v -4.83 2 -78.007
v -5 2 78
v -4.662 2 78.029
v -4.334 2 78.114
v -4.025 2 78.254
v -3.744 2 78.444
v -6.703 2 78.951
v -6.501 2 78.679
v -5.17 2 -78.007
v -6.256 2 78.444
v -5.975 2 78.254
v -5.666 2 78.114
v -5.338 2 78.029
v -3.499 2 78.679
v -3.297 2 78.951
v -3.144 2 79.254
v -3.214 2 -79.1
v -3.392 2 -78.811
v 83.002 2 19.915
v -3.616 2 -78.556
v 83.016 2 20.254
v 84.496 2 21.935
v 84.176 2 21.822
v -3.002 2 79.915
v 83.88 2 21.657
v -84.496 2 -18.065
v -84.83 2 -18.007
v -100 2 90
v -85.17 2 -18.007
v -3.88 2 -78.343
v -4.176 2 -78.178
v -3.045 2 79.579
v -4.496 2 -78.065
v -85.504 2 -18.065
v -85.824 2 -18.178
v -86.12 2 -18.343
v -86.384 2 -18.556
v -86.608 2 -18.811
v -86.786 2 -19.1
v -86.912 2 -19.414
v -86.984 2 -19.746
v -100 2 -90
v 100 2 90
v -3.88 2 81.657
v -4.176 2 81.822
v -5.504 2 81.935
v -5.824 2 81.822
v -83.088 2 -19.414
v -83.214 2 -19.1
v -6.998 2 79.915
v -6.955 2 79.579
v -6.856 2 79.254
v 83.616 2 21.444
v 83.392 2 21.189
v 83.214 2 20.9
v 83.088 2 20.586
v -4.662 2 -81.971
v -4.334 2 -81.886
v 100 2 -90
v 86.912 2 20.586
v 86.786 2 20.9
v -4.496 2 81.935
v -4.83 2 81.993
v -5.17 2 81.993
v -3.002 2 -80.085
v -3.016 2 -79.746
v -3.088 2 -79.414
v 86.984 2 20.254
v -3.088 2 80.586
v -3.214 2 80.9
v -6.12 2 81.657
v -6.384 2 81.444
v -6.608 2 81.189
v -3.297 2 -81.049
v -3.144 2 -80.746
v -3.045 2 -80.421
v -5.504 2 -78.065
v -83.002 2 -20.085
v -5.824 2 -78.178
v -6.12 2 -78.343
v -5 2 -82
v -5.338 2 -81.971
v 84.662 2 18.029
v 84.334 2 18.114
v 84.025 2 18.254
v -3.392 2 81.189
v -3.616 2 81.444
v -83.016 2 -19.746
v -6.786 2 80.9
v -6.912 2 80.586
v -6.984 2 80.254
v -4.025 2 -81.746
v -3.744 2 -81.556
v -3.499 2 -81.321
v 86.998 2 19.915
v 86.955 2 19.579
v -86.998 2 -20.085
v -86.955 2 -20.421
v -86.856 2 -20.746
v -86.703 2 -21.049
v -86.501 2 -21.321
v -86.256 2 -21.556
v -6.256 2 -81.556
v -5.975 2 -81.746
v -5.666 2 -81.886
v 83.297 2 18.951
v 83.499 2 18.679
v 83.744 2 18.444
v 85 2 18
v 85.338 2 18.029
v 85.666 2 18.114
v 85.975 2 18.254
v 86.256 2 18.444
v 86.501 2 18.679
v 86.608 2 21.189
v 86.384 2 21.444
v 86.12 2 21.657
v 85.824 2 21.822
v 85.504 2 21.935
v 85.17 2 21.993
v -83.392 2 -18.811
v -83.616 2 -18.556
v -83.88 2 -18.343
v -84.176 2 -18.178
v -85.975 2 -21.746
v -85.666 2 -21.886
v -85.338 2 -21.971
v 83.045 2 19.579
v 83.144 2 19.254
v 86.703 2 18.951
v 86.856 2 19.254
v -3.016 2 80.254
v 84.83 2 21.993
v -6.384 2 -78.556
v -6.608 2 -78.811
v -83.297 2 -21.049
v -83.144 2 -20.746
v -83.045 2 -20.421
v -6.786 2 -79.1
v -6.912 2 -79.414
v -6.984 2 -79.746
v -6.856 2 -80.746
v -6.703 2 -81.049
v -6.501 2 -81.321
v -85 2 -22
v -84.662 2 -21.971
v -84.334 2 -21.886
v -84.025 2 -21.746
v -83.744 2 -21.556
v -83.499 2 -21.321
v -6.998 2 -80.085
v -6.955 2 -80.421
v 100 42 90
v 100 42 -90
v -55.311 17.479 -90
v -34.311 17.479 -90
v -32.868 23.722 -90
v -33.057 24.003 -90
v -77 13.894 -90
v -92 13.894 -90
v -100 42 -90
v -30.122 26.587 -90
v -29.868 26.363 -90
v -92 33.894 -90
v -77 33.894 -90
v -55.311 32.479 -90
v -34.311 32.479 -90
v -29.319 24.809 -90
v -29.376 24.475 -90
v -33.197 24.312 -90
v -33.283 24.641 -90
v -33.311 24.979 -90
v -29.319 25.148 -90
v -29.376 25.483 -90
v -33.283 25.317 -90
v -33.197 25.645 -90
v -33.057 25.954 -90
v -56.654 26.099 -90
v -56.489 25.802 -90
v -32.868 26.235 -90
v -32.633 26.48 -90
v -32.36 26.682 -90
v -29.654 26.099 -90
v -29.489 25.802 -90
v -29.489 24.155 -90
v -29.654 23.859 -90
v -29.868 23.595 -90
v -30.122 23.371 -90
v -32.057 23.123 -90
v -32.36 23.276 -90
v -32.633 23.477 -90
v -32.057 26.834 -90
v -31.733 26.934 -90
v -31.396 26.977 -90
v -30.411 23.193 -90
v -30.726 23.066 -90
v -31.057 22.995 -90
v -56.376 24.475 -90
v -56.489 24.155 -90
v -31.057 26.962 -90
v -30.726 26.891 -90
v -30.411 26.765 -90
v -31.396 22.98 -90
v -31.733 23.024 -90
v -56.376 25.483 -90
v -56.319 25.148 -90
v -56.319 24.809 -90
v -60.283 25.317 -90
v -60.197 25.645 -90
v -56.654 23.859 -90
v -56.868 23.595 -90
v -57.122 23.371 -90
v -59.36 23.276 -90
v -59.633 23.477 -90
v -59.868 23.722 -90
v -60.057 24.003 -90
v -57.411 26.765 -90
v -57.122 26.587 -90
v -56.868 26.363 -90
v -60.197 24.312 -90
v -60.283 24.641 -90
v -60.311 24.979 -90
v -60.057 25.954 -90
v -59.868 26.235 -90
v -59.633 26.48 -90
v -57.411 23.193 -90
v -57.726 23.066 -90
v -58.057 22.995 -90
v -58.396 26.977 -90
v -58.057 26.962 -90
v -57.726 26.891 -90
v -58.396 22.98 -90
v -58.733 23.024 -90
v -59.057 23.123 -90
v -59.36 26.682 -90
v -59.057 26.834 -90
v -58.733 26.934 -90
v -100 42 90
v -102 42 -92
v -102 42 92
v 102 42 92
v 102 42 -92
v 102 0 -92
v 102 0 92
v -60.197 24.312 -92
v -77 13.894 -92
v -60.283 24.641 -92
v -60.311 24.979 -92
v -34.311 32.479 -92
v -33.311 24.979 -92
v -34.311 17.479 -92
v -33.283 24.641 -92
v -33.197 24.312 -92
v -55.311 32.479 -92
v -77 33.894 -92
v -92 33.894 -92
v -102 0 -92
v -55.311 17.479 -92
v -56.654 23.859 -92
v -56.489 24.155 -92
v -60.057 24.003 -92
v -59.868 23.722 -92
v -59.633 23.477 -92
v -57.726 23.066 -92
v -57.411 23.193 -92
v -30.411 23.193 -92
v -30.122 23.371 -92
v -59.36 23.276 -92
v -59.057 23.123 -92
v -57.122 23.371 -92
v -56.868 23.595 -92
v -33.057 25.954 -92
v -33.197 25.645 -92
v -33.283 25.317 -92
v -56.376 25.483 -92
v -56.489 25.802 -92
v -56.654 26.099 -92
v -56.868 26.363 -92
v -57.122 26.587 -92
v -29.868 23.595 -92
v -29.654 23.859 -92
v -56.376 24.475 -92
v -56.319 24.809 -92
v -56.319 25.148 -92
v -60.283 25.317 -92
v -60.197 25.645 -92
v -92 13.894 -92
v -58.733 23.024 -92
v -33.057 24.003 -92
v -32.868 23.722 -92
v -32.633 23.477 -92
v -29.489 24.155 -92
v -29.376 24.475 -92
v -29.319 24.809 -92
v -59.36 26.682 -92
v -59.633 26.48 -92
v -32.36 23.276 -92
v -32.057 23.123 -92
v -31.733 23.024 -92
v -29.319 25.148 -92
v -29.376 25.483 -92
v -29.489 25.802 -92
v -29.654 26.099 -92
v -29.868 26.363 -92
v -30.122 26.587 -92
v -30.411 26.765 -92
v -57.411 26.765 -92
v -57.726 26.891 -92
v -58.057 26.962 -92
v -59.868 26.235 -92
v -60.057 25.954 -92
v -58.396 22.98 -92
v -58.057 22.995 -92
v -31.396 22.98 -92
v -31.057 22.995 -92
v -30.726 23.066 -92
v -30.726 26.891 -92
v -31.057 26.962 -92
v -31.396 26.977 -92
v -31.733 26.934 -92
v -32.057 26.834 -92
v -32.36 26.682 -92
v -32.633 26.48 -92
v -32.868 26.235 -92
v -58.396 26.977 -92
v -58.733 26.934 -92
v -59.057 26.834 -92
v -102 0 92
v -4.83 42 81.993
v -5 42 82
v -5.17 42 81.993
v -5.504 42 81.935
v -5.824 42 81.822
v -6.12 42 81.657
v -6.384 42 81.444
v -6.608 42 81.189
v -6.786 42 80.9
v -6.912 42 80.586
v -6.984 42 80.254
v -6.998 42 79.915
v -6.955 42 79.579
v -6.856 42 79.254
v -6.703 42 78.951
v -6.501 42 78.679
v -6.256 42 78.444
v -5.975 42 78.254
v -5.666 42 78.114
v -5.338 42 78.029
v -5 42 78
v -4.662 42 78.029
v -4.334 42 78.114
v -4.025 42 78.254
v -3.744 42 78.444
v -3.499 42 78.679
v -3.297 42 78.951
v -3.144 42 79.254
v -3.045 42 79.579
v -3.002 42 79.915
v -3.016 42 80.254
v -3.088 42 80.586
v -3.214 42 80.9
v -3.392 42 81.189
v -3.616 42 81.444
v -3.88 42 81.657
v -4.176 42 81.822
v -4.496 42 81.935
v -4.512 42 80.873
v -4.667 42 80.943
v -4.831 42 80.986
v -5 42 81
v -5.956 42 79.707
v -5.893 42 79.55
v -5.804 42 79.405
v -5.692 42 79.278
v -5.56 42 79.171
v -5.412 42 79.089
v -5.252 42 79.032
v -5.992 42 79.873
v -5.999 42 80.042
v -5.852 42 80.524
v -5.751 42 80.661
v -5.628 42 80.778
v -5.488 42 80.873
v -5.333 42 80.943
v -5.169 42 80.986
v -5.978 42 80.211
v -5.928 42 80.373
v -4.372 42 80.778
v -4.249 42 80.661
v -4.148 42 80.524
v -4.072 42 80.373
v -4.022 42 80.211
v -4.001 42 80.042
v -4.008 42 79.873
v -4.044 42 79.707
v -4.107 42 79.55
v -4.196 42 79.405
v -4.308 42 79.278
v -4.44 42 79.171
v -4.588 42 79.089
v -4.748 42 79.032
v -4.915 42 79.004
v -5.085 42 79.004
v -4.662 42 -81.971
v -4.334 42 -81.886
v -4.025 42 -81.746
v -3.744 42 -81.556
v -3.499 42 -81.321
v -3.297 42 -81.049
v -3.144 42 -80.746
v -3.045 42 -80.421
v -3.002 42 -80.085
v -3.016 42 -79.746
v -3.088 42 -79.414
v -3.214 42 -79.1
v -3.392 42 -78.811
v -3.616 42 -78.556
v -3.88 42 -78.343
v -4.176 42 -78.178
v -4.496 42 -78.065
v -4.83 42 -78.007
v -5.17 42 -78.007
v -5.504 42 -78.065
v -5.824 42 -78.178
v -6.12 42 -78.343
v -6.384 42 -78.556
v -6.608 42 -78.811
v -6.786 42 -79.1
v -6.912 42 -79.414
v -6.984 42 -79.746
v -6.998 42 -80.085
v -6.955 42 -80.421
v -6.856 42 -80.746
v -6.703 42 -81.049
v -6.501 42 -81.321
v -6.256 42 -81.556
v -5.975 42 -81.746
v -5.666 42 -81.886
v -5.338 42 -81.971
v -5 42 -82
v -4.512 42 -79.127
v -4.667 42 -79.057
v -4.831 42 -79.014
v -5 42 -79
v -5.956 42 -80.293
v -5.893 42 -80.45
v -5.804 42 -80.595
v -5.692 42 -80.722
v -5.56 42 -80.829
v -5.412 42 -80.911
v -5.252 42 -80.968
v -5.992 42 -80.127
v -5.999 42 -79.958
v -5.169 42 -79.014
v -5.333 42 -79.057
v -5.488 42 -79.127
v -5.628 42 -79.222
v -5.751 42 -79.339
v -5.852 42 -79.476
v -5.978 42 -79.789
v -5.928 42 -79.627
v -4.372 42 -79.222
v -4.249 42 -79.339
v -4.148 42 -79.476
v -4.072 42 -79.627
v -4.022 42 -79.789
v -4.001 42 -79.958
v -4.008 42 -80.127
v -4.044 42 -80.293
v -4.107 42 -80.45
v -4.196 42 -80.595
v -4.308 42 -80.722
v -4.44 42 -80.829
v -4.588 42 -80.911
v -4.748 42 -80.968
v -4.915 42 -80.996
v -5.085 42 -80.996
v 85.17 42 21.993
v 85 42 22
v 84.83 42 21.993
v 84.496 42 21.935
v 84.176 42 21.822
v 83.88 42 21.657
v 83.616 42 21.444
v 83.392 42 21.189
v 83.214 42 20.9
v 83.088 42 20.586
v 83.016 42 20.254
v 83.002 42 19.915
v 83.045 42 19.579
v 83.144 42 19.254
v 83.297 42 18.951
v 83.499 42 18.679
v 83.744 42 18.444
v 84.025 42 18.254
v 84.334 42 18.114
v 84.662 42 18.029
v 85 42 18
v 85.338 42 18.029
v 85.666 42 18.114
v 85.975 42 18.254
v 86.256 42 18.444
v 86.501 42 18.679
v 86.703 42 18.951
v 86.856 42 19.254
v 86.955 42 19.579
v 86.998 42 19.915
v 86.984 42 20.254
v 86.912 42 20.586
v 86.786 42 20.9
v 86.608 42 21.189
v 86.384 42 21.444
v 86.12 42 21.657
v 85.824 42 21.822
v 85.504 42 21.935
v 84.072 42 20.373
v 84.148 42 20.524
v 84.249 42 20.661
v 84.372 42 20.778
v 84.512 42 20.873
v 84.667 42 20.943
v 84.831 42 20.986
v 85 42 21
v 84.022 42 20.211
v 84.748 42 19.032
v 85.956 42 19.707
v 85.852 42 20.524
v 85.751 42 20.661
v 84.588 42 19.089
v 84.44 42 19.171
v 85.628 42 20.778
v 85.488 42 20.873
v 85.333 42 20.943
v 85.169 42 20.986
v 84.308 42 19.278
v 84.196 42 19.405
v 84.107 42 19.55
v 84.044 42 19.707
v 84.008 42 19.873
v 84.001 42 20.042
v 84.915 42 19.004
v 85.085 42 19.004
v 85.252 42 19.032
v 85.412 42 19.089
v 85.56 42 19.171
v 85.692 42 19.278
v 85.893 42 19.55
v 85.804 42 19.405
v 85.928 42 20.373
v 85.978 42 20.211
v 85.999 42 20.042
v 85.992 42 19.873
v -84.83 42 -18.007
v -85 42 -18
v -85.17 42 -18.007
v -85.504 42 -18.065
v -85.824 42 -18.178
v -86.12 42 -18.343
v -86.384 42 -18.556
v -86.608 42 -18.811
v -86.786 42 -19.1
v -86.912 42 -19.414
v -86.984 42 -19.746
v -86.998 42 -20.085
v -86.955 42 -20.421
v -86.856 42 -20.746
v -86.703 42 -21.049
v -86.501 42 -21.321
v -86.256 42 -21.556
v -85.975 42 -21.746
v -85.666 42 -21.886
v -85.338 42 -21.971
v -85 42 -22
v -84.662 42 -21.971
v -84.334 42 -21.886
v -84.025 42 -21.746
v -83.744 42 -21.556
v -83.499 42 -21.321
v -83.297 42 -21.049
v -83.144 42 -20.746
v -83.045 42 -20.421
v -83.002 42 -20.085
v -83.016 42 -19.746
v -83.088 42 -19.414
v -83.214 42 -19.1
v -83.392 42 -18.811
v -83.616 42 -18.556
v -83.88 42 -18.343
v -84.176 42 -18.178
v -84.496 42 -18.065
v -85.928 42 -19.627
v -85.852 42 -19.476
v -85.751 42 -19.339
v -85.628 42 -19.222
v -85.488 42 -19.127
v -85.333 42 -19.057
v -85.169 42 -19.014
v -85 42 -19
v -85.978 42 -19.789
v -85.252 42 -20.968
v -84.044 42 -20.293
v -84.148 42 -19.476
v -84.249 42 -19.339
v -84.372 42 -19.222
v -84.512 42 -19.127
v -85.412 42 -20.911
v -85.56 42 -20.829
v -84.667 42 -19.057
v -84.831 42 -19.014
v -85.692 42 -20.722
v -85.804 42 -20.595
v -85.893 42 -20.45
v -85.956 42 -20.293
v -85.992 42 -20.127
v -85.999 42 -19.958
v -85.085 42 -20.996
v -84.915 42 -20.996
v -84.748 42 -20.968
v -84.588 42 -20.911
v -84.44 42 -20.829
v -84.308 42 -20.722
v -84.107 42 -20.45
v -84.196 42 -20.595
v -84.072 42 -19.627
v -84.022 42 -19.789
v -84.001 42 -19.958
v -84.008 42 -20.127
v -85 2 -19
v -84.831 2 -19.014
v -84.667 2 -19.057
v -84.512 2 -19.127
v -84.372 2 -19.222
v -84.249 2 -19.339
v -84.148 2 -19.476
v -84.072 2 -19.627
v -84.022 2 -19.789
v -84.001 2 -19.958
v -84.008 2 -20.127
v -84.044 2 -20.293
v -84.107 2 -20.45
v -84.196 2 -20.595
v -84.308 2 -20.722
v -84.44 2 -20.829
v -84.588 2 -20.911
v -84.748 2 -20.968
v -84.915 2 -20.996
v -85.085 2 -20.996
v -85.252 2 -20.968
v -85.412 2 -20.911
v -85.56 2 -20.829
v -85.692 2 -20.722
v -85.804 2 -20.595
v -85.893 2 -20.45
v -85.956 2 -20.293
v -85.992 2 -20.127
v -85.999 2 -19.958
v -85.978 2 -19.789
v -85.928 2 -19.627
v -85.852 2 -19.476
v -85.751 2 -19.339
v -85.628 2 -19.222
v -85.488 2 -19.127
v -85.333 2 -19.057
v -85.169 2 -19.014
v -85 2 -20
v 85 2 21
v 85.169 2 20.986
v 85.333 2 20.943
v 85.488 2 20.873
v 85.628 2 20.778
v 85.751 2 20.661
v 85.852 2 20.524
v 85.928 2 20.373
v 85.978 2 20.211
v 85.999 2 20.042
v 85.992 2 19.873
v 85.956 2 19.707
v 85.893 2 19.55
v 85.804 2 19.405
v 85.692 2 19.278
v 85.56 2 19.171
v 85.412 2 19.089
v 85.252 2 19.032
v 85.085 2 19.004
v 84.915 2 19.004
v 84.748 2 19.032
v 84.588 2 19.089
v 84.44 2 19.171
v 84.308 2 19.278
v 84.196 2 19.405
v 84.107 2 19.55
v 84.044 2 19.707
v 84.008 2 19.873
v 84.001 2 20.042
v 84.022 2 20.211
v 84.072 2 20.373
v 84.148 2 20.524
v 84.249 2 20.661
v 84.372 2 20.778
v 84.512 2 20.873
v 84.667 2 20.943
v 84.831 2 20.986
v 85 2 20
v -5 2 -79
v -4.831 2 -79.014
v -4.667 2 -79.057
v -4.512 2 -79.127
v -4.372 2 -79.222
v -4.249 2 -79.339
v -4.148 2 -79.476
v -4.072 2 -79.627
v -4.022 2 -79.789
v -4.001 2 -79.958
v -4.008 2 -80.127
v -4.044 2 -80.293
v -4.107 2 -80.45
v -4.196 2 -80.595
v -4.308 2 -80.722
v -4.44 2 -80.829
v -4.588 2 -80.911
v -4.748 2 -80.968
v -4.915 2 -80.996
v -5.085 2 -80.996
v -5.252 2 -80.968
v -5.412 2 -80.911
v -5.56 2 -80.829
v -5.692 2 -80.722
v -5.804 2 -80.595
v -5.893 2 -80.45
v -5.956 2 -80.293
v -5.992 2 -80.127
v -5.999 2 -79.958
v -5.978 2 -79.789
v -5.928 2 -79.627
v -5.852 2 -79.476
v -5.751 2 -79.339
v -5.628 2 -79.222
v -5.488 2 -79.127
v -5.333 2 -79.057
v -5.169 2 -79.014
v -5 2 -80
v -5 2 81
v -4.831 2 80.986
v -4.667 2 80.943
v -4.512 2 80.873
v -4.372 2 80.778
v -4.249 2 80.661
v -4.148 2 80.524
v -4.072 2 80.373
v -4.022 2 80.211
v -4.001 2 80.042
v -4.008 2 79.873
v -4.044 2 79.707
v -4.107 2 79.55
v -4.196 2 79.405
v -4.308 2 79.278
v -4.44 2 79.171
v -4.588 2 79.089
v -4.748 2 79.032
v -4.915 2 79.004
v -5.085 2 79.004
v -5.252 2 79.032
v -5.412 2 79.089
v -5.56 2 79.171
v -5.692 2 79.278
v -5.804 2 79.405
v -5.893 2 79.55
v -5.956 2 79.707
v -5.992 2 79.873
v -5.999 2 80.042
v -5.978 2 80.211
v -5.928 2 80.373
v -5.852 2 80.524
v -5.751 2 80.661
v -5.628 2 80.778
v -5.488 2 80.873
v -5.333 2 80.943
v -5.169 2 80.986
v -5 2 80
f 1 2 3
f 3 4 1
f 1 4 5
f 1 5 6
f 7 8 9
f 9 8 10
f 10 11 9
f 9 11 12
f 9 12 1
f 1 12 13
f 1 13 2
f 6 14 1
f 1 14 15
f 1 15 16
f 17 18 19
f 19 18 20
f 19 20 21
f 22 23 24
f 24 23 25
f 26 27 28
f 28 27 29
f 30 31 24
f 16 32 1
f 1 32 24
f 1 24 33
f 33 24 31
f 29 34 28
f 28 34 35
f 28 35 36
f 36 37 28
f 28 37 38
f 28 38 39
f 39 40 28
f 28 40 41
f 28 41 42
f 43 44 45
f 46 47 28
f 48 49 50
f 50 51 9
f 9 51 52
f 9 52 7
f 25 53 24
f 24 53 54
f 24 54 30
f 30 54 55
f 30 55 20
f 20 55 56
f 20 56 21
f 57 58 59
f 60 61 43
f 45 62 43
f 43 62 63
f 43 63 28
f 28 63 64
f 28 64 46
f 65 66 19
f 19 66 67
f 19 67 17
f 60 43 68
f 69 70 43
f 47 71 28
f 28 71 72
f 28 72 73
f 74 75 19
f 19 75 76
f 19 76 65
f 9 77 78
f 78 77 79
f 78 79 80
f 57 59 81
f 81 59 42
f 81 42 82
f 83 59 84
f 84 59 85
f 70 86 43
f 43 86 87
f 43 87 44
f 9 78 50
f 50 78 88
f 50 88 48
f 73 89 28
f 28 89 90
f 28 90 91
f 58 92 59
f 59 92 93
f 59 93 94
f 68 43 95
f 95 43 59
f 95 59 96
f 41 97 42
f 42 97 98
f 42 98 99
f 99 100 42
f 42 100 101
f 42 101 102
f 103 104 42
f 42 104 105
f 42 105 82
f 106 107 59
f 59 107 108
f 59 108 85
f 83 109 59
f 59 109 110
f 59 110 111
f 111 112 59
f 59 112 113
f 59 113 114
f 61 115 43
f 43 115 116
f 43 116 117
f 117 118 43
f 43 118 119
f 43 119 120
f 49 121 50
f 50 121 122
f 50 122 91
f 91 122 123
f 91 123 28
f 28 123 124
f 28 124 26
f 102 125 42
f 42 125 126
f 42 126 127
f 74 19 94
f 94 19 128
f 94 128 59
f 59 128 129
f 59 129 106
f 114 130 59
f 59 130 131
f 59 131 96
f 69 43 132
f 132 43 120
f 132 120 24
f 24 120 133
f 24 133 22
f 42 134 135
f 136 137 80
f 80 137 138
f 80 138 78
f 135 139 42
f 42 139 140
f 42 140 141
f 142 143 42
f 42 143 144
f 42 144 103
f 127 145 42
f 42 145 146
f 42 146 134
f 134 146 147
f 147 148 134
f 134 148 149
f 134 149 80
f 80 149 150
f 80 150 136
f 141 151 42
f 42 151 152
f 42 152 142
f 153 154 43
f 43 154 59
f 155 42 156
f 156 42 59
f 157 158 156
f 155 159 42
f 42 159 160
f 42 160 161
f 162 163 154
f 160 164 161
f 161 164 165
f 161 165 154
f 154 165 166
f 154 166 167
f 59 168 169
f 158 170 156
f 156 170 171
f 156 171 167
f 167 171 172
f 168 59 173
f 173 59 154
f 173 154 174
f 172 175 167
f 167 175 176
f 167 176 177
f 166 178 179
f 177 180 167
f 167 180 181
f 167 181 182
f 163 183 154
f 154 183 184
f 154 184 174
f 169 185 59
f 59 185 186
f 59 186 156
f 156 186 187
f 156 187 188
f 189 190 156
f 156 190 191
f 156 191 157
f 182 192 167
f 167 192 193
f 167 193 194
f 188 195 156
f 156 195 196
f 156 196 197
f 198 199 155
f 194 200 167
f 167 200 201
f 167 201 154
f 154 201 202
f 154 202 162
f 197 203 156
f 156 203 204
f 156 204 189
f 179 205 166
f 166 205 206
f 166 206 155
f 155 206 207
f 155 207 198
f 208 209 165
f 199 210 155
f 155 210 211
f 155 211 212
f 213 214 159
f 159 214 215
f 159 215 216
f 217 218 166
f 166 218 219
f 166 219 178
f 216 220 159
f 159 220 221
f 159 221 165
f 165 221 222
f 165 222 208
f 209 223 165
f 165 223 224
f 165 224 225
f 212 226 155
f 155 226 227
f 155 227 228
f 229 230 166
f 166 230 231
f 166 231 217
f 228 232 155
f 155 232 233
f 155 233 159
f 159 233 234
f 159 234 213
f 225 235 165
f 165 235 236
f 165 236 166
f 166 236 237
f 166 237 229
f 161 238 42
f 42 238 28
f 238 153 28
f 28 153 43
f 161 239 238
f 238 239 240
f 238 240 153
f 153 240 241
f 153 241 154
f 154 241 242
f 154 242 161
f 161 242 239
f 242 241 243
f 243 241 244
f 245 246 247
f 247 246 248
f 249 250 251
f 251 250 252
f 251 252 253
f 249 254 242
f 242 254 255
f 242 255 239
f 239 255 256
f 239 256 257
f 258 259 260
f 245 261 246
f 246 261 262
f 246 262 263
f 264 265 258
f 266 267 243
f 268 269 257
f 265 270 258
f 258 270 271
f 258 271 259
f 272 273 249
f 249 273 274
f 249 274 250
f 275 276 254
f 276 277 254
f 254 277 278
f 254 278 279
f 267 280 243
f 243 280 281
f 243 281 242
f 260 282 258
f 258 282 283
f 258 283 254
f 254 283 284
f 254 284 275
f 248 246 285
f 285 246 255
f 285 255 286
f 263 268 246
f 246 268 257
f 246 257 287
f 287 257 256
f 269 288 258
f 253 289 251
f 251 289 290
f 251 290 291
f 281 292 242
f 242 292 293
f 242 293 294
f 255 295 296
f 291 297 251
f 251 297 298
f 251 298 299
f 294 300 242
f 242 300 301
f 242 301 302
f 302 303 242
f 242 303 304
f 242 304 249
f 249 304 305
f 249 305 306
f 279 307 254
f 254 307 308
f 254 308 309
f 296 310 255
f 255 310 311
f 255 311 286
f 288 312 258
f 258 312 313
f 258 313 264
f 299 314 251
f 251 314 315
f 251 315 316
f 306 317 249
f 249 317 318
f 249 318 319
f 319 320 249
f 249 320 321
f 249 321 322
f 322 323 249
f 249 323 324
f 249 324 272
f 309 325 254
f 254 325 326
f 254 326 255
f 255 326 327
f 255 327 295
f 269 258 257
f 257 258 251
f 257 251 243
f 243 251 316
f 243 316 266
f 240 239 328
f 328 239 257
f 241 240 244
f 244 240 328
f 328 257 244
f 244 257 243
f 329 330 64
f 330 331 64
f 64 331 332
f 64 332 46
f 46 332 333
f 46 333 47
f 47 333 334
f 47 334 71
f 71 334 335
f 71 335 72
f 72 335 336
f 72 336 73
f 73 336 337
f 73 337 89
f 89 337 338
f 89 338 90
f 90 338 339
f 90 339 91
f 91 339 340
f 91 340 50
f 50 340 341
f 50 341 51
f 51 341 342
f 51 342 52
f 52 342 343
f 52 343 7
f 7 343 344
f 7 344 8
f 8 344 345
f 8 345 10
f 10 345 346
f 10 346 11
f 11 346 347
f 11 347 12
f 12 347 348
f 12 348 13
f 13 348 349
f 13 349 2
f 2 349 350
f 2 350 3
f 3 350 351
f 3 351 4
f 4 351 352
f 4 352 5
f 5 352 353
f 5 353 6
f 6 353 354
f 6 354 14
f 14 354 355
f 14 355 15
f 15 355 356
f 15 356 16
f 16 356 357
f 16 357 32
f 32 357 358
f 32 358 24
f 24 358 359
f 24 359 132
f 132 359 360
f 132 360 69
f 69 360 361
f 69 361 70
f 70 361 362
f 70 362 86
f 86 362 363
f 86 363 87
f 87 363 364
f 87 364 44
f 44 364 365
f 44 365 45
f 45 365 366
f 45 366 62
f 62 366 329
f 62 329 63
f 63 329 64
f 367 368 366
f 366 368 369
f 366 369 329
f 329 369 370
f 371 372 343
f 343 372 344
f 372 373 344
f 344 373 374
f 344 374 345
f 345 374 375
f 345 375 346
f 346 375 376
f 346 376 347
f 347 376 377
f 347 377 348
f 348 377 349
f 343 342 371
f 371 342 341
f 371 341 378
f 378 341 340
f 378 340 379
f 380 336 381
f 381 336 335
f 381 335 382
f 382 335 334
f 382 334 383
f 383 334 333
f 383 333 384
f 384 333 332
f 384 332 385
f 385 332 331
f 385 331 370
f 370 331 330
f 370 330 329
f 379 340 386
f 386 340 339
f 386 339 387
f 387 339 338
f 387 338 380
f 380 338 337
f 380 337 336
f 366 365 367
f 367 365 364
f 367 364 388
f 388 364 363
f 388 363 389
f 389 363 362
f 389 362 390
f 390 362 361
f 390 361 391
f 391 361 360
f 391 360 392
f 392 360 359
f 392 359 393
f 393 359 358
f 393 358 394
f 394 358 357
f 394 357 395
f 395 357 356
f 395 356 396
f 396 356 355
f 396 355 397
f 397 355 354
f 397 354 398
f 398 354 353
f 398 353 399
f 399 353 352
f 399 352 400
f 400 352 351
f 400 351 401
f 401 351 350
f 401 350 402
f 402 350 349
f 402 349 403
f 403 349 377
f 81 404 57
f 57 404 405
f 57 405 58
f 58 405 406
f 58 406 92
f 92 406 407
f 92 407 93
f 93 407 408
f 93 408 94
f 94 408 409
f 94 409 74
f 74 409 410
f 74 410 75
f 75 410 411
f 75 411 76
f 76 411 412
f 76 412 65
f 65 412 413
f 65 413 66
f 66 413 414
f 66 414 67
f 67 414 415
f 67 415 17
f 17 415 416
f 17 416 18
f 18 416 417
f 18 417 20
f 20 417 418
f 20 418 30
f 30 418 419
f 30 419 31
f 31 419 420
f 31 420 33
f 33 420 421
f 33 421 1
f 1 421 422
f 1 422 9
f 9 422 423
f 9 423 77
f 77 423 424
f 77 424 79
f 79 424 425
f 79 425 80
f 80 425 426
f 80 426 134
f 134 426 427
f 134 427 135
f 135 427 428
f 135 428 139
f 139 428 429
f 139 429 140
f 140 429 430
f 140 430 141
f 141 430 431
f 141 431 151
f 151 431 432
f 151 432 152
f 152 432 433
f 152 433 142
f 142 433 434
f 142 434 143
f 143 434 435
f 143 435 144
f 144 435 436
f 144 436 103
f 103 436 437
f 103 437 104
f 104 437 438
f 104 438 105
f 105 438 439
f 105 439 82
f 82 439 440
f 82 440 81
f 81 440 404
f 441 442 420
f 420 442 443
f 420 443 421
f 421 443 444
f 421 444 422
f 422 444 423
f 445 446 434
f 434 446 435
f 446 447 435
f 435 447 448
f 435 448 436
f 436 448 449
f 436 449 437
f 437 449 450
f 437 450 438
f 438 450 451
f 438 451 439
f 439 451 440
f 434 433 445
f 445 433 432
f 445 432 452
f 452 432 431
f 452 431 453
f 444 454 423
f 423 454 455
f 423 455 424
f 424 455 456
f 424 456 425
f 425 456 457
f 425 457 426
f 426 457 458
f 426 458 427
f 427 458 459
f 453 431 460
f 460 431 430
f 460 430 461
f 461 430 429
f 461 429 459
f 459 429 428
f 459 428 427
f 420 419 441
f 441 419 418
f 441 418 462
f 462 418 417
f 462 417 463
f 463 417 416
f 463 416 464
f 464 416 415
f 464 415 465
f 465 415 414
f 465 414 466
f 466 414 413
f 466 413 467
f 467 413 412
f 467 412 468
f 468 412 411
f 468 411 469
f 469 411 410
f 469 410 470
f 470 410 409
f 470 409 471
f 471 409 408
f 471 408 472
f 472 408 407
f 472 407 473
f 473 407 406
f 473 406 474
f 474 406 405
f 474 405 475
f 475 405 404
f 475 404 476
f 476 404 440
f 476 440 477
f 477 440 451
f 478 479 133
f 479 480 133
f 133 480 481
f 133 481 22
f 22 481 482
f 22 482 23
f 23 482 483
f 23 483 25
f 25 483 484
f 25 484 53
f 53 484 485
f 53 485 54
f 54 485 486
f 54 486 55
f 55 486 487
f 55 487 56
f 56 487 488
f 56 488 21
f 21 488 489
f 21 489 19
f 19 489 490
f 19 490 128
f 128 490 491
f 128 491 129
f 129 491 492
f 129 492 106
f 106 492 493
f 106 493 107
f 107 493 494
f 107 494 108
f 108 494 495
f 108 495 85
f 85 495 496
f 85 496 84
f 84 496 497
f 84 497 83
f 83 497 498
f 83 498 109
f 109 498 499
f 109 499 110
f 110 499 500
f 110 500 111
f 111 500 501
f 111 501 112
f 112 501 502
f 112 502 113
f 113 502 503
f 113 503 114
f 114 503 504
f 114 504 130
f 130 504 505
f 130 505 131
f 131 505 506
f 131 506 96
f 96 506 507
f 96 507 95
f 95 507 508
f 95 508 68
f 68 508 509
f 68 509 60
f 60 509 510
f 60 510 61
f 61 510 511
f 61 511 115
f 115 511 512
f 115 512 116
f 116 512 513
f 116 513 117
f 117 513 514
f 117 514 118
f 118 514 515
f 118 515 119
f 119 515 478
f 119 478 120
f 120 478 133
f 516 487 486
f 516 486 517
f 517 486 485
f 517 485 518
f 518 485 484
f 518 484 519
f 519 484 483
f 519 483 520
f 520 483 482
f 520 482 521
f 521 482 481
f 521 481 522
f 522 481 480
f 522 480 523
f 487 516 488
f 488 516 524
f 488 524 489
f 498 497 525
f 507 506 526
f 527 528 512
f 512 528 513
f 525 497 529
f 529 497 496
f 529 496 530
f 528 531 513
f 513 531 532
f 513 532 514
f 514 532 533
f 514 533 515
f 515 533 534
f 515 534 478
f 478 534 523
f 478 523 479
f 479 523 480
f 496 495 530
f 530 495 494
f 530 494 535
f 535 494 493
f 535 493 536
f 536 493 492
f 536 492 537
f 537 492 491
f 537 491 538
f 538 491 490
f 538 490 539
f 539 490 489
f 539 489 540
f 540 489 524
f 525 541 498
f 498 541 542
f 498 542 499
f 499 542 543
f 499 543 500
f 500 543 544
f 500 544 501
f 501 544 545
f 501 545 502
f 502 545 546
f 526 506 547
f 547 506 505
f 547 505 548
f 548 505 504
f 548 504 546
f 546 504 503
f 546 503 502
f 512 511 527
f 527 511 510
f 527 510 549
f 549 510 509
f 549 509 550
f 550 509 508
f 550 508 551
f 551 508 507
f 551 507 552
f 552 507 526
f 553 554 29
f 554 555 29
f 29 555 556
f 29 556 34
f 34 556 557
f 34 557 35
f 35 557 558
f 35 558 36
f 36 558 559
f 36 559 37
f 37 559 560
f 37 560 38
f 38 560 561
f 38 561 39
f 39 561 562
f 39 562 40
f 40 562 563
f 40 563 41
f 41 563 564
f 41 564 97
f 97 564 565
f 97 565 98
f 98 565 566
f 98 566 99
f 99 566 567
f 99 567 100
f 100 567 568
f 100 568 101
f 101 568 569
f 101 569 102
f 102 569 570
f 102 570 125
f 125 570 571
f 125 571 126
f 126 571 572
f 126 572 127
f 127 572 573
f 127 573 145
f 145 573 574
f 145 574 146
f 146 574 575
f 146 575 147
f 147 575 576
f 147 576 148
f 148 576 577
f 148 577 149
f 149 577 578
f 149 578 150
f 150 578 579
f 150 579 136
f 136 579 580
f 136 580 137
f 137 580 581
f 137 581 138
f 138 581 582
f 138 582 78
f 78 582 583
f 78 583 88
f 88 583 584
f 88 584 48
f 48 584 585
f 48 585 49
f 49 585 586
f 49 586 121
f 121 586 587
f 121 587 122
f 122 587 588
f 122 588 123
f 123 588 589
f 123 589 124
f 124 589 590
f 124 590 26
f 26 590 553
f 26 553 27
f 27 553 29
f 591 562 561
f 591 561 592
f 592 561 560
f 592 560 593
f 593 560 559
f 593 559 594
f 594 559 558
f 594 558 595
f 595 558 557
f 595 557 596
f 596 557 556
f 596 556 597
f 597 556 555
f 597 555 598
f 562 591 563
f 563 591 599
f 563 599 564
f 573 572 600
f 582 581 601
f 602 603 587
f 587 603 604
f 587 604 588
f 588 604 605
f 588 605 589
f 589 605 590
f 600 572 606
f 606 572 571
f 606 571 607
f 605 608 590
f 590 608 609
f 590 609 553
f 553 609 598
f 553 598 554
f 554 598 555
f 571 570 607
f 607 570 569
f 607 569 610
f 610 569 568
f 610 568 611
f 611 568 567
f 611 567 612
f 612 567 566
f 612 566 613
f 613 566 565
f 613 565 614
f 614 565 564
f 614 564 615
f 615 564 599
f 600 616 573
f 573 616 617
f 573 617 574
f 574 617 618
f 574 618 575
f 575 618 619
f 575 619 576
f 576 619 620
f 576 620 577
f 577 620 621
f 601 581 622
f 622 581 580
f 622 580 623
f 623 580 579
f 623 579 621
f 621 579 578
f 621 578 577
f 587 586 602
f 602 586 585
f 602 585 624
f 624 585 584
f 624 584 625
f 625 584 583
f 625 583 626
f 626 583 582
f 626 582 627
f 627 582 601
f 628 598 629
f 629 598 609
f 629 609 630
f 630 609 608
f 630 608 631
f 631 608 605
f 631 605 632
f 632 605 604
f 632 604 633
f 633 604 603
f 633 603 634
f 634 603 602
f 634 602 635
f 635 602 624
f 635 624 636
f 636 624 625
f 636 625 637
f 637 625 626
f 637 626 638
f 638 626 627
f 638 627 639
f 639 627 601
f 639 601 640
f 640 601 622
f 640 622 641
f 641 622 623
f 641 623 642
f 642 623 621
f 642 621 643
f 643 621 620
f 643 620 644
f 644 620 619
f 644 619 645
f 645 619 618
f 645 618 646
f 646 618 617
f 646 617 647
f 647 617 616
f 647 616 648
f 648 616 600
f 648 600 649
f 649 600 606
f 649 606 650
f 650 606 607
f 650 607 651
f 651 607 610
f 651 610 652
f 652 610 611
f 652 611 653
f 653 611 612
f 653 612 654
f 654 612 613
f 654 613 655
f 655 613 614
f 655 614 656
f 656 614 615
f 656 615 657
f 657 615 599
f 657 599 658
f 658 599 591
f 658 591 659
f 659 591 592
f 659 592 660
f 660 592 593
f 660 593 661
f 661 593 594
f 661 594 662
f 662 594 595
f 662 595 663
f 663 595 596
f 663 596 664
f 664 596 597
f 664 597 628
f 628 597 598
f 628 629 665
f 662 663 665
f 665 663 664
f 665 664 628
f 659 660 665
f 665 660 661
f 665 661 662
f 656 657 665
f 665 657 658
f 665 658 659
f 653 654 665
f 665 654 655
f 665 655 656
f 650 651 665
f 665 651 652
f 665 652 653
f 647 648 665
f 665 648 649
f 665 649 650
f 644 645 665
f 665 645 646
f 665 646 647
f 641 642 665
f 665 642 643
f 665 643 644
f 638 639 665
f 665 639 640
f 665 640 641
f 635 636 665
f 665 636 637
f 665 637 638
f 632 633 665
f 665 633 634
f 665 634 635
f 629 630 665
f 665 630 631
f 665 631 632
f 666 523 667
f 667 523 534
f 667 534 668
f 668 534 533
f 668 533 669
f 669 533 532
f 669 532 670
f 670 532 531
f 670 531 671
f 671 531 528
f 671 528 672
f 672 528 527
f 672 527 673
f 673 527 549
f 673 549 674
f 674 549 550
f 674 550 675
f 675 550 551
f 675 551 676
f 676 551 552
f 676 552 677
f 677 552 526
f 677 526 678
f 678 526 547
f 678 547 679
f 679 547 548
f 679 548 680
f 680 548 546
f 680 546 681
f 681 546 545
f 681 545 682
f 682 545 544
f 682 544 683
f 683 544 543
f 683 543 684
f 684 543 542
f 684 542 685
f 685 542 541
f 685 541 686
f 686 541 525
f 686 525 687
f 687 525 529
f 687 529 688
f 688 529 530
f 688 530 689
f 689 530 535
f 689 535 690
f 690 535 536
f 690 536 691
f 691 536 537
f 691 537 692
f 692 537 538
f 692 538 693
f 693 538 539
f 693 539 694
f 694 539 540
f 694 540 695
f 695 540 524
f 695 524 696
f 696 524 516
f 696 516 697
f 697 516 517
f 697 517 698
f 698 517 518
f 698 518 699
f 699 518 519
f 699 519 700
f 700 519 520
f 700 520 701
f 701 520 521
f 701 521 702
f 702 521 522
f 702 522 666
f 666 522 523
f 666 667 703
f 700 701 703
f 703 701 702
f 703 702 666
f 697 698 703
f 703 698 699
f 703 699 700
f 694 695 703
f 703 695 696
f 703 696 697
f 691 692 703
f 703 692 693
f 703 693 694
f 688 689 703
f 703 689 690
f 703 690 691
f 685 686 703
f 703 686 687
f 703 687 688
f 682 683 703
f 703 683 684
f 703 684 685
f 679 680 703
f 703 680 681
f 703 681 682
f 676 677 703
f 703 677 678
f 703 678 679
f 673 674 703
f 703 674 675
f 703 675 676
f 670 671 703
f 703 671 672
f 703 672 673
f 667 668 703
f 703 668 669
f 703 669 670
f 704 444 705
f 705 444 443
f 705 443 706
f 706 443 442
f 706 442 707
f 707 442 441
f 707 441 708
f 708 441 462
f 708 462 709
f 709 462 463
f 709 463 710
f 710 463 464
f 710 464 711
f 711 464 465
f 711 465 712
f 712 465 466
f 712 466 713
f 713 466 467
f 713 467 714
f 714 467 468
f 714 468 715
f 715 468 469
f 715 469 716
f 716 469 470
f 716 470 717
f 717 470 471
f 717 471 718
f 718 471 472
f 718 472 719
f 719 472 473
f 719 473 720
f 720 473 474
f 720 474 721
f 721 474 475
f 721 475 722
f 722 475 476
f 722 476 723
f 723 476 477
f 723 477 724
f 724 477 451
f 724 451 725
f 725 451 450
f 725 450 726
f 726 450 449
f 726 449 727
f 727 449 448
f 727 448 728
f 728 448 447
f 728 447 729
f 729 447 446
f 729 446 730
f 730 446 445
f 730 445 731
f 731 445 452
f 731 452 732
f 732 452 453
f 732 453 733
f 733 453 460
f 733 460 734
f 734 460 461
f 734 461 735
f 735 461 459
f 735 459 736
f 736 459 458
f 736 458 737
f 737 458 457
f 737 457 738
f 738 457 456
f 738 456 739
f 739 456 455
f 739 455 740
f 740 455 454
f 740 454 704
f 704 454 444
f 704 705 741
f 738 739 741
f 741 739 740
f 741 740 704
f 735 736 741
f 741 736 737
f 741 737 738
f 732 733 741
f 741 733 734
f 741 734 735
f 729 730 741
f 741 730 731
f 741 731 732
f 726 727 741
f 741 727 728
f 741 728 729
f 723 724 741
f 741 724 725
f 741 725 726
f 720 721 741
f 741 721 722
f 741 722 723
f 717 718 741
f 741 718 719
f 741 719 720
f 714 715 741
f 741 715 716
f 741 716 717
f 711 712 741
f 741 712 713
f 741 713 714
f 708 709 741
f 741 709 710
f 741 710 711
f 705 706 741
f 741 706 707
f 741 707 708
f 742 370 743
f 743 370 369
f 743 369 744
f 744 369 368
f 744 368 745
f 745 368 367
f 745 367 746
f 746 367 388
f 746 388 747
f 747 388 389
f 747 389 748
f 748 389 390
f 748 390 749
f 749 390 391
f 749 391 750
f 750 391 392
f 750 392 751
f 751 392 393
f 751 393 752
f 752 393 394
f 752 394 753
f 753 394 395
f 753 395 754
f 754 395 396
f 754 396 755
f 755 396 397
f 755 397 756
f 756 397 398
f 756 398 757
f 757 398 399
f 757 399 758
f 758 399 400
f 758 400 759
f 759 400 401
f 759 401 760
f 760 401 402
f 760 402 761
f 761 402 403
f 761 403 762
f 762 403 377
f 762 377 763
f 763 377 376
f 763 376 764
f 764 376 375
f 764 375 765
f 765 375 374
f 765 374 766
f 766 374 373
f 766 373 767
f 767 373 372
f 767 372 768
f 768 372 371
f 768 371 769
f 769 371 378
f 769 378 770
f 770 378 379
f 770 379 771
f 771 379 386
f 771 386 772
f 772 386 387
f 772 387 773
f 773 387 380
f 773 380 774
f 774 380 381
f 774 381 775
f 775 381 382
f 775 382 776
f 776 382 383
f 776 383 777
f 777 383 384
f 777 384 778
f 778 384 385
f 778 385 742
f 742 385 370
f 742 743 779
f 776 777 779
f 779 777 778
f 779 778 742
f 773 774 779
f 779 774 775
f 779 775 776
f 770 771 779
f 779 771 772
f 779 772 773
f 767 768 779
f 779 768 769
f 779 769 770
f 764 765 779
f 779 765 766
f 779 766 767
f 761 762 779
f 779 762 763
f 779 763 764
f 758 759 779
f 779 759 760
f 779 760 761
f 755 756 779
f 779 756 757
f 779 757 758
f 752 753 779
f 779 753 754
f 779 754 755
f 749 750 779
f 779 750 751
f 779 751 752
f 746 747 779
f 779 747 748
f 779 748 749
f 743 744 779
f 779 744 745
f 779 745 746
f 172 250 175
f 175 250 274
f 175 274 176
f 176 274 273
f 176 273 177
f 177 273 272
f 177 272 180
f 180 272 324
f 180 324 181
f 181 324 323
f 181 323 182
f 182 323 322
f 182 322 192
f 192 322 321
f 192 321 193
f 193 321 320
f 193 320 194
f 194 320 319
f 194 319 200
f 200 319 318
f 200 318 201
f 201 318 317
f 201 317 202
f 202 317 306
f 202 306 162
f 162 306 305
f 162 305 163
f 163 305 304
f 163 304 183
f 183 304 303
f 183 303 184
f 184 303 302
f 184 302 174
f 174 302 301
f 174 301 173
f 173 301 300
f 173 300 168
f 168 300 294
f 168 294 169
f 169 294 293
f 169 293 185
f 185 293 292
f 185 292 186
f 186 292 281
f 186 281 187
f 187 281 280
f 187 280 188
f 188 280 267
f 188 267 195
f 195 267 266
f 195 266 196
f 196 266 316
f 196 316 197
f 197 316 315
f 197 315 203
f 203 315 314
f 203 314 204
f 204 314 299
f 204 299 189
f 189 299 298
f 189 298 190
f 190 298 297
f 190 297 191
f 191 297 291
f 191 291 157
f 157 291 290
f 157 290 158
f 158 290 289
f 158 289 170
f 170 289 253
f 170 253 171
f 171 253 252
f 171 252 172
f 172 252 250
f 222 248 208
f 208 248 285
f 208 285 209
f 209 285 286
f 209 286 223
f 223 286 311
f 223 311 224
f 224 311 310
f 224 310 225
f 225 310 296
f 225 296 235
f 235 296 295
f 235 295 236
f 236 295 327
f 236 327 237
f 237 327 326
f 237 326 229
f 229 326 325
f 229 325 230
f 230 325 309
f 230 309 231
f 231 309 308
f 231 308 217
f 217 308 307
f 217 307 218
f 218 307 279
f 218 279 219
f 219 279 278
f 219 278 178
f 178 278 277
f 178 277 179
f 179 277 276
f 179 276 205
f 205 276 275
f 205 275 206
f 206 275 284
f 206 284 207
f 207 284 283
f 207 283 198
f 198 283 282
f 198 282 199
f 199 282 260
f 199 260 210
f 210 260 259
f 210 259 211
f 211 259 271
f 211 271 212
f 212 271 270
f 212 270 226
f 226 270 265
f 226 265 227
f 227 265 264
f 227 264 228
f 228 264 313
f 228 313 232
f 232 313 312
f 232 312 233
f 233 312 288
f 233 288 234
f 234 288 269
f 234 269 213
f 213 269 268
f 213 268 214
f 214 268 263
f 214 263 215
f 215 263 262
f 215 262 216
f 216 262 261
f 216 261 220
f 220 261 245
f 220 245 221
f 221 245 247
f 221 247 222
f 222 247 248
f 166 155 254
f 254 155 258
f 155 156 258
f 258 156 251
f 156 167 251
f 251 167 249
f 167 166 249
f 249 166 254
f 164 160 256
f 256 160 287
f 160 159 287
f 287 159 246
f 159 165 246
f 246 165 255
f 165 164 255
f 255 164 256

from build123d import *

# Parameters (mm, degrees)
SKETCH4_W           = 200
SKETCH4_H           = 180
BOSS_EXTRUDE3_DEPTH = 2
SKETCH4_3_W         = 204
SKETCH4_3_H         = 184
SKETCH4_3_W_2       = 200
SKETCH4_3_H_2       = 180
BOSS_EXTRUDE4_DEPTH = 42
SKETCH6_R           = 2
BOSS_EXTRUDE5_DEPTH = 40
SKETCH8_R           = 1
CUT_EXTRUDE1_DEPTH  = 40
SKETCH5_R           = 2
SKETCH5_W           = 15
SKETCH5_H           = 20
SKETCH5_W_2         = 21
SKETCH5_H_2         = 15
CUT_EXTRUDE2_DEPTH  = 2


with BuildPart() as part:
    # Sketch4 → Boss-Extrude3 (new body)
    with BuildSketch(Plane(origin=(0, 0, 0), x_dir=(1, 0, 0), z_dir=(0, 1, 0))):
        Rectangle(SKETCH4_W, SKETCH4_H)
    extrude(amount=BOSS_EXTRUDE3_DEPTH)

    # Sketch4<3> → Boss-Extrude4 (add)
    with BuildSketch(Plane(origin=(0, 0, 0), x_dir=(1, 0, 0), z_dir=(0, 1, 0))):
        Rectangle(SKETCH4_3_W, SKETCH4_3_H)
        Rectangle(SKETCH4_3_W_2, SKETCH4_3_H_2, mode=Mode.SUBTRACT)
    extrude(amount=BOSS_EXTRUDE4_DEPTH)

    # Sketch6 → Boss-Extrude5 (add)
    with BuildSketch(Plane(origin=(0, 2, 0), x_dir=(1, 0, 0), z_dir=(0, 1, 0))):
        with Locations((-5, -80)):
            Circle(SKETCH6_R)
        with Locations((-5, 80)):
            Circle(SKETCH6_R)
        with Locations((85, -20)):
            Circle(SKETCH6_R)
        with Locations((-85, 20)):
            Circle(SKETCH6_R)
    extrude(amount=BOSS_EXTRUDE5_DEPTH)

    # Sketch8 → Cut-Extrude1 (cut)
    with BuildSketch(Plane(origin=(0, 42, 0), x_dir=(1, 0, 0), z_dir=(0, 1, 0))):
        with Locations((-5, 80)):
            Circle(SKETCH8_R)
        with Locations((85, -20)):
            Circle(SKETCH8_R)
        with Locations((-5, -80)):
            Circle(SKETCH8_R)
        with Locations((-85, 20)):
            Circle(SKETCH8_R)
    extrude(amount=-CUT_EXTRUDE1_DEPTH, mode=Mode.SUBTRACT)

    # Sketch5 → Cut-Extrude2 (cut)
    with BuildSketch(Plane(origin=(0, 0, -92), x_dir=(-1, 0, 0), z_dir=(0, 0, -1))):
        with Locations((58.311430335, 24.978671474)):
            Circle(SKETCH5_R)
        with Locations((31.311430335, 24.978671474)):
            Circle(SKETCH5_R)
        with Locations((84.5, 23.893749762)):
            Rectangle(SKETCH5_W, SKETCH5_H)
        with Locations((44.811430335, 24.978671474)):
            Rectangle(SKETCH5_W_2, SKETCH5_H_2)
    extrude(amount=-CUT_EXTRUDE2_DEPTH, mode=Mode.SUBTRACT)


solid = part.part
